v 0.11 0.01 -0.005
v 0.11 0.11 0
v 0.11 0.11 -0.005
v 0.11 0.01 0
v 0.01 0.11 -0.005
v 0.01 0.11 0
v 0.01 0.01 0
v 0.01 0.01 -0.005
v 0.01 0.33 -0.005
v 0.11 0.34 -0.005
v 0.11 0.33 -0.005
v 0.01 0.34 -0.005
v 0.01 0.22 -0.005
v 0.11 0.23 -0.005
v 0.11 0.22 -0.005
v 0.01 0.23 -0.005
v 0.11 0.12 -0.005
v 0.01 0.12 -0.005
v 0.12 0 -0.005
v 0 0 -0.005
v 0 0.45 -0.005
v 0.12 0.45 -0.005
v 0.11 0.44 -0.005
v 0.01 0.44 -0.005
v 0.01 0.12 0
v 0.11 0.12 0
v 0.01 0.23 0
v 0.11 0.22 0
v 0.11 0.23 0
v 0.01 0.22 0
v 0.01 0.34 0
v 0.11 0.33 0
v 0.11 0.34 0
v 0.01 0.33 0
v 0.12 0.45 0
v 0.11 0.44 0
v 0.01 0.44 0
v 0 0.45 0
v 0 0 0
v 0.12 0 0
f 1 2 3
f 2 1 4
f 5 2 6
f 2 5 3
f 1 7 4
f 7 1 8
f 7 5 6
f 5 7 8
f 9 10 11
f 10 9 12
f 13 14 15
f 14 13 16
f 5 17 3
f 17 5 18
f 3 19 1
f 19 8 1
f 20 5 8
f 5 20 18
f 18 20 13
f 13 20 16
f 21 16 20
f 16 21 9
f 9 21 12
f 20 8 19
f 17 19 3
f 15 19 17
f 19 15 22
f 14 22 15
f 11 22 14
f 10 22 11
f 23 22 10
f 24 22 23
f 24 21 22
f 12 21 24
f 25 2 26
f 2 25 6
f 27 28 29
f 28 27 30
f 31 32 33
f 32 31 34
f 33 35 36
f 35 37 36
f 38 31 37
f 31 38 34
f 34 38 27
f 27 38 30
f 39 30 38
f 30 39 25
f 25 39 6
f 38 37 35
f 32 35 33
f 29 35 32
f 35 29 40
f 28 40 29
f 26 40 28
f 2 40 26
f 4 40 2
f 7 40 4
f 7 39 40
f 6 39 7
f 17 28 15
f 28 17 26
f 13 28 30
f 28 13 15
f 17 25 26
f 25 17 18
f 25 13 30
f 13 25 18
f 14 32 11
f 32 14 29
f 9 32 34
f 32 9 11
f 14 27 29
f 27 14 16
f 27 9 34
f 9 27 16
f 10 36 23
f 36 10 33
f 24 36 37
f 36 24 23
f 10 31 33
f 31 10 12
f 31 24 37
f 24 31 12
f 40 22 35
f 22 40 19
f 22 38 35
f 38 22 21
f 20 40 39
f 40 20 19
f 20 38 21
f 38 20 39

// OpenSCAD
mag = 1.0 / 5.0;
dx = mag * 0.5;
dy = mag * 0.5;
dt = mag * 0.025;
db = mag * 0.05;

rotate([-90, 0, 0]) {
difference() {
cube([dx + 2 * db, dt, 4 * dy + 5 * db]);
translate([db, 0, db]) {
cube([dx, dt, dy]);
translate([0, 0, dy + db])
  cube([dx, dt, dy]);
translate([0, 0, 2 * (dy + db)])
  cube([dx, dt, dy]);
translate([0, 0, 3 * (dy + db)])
  cube([dx, dt, dy]);
}
}
}
